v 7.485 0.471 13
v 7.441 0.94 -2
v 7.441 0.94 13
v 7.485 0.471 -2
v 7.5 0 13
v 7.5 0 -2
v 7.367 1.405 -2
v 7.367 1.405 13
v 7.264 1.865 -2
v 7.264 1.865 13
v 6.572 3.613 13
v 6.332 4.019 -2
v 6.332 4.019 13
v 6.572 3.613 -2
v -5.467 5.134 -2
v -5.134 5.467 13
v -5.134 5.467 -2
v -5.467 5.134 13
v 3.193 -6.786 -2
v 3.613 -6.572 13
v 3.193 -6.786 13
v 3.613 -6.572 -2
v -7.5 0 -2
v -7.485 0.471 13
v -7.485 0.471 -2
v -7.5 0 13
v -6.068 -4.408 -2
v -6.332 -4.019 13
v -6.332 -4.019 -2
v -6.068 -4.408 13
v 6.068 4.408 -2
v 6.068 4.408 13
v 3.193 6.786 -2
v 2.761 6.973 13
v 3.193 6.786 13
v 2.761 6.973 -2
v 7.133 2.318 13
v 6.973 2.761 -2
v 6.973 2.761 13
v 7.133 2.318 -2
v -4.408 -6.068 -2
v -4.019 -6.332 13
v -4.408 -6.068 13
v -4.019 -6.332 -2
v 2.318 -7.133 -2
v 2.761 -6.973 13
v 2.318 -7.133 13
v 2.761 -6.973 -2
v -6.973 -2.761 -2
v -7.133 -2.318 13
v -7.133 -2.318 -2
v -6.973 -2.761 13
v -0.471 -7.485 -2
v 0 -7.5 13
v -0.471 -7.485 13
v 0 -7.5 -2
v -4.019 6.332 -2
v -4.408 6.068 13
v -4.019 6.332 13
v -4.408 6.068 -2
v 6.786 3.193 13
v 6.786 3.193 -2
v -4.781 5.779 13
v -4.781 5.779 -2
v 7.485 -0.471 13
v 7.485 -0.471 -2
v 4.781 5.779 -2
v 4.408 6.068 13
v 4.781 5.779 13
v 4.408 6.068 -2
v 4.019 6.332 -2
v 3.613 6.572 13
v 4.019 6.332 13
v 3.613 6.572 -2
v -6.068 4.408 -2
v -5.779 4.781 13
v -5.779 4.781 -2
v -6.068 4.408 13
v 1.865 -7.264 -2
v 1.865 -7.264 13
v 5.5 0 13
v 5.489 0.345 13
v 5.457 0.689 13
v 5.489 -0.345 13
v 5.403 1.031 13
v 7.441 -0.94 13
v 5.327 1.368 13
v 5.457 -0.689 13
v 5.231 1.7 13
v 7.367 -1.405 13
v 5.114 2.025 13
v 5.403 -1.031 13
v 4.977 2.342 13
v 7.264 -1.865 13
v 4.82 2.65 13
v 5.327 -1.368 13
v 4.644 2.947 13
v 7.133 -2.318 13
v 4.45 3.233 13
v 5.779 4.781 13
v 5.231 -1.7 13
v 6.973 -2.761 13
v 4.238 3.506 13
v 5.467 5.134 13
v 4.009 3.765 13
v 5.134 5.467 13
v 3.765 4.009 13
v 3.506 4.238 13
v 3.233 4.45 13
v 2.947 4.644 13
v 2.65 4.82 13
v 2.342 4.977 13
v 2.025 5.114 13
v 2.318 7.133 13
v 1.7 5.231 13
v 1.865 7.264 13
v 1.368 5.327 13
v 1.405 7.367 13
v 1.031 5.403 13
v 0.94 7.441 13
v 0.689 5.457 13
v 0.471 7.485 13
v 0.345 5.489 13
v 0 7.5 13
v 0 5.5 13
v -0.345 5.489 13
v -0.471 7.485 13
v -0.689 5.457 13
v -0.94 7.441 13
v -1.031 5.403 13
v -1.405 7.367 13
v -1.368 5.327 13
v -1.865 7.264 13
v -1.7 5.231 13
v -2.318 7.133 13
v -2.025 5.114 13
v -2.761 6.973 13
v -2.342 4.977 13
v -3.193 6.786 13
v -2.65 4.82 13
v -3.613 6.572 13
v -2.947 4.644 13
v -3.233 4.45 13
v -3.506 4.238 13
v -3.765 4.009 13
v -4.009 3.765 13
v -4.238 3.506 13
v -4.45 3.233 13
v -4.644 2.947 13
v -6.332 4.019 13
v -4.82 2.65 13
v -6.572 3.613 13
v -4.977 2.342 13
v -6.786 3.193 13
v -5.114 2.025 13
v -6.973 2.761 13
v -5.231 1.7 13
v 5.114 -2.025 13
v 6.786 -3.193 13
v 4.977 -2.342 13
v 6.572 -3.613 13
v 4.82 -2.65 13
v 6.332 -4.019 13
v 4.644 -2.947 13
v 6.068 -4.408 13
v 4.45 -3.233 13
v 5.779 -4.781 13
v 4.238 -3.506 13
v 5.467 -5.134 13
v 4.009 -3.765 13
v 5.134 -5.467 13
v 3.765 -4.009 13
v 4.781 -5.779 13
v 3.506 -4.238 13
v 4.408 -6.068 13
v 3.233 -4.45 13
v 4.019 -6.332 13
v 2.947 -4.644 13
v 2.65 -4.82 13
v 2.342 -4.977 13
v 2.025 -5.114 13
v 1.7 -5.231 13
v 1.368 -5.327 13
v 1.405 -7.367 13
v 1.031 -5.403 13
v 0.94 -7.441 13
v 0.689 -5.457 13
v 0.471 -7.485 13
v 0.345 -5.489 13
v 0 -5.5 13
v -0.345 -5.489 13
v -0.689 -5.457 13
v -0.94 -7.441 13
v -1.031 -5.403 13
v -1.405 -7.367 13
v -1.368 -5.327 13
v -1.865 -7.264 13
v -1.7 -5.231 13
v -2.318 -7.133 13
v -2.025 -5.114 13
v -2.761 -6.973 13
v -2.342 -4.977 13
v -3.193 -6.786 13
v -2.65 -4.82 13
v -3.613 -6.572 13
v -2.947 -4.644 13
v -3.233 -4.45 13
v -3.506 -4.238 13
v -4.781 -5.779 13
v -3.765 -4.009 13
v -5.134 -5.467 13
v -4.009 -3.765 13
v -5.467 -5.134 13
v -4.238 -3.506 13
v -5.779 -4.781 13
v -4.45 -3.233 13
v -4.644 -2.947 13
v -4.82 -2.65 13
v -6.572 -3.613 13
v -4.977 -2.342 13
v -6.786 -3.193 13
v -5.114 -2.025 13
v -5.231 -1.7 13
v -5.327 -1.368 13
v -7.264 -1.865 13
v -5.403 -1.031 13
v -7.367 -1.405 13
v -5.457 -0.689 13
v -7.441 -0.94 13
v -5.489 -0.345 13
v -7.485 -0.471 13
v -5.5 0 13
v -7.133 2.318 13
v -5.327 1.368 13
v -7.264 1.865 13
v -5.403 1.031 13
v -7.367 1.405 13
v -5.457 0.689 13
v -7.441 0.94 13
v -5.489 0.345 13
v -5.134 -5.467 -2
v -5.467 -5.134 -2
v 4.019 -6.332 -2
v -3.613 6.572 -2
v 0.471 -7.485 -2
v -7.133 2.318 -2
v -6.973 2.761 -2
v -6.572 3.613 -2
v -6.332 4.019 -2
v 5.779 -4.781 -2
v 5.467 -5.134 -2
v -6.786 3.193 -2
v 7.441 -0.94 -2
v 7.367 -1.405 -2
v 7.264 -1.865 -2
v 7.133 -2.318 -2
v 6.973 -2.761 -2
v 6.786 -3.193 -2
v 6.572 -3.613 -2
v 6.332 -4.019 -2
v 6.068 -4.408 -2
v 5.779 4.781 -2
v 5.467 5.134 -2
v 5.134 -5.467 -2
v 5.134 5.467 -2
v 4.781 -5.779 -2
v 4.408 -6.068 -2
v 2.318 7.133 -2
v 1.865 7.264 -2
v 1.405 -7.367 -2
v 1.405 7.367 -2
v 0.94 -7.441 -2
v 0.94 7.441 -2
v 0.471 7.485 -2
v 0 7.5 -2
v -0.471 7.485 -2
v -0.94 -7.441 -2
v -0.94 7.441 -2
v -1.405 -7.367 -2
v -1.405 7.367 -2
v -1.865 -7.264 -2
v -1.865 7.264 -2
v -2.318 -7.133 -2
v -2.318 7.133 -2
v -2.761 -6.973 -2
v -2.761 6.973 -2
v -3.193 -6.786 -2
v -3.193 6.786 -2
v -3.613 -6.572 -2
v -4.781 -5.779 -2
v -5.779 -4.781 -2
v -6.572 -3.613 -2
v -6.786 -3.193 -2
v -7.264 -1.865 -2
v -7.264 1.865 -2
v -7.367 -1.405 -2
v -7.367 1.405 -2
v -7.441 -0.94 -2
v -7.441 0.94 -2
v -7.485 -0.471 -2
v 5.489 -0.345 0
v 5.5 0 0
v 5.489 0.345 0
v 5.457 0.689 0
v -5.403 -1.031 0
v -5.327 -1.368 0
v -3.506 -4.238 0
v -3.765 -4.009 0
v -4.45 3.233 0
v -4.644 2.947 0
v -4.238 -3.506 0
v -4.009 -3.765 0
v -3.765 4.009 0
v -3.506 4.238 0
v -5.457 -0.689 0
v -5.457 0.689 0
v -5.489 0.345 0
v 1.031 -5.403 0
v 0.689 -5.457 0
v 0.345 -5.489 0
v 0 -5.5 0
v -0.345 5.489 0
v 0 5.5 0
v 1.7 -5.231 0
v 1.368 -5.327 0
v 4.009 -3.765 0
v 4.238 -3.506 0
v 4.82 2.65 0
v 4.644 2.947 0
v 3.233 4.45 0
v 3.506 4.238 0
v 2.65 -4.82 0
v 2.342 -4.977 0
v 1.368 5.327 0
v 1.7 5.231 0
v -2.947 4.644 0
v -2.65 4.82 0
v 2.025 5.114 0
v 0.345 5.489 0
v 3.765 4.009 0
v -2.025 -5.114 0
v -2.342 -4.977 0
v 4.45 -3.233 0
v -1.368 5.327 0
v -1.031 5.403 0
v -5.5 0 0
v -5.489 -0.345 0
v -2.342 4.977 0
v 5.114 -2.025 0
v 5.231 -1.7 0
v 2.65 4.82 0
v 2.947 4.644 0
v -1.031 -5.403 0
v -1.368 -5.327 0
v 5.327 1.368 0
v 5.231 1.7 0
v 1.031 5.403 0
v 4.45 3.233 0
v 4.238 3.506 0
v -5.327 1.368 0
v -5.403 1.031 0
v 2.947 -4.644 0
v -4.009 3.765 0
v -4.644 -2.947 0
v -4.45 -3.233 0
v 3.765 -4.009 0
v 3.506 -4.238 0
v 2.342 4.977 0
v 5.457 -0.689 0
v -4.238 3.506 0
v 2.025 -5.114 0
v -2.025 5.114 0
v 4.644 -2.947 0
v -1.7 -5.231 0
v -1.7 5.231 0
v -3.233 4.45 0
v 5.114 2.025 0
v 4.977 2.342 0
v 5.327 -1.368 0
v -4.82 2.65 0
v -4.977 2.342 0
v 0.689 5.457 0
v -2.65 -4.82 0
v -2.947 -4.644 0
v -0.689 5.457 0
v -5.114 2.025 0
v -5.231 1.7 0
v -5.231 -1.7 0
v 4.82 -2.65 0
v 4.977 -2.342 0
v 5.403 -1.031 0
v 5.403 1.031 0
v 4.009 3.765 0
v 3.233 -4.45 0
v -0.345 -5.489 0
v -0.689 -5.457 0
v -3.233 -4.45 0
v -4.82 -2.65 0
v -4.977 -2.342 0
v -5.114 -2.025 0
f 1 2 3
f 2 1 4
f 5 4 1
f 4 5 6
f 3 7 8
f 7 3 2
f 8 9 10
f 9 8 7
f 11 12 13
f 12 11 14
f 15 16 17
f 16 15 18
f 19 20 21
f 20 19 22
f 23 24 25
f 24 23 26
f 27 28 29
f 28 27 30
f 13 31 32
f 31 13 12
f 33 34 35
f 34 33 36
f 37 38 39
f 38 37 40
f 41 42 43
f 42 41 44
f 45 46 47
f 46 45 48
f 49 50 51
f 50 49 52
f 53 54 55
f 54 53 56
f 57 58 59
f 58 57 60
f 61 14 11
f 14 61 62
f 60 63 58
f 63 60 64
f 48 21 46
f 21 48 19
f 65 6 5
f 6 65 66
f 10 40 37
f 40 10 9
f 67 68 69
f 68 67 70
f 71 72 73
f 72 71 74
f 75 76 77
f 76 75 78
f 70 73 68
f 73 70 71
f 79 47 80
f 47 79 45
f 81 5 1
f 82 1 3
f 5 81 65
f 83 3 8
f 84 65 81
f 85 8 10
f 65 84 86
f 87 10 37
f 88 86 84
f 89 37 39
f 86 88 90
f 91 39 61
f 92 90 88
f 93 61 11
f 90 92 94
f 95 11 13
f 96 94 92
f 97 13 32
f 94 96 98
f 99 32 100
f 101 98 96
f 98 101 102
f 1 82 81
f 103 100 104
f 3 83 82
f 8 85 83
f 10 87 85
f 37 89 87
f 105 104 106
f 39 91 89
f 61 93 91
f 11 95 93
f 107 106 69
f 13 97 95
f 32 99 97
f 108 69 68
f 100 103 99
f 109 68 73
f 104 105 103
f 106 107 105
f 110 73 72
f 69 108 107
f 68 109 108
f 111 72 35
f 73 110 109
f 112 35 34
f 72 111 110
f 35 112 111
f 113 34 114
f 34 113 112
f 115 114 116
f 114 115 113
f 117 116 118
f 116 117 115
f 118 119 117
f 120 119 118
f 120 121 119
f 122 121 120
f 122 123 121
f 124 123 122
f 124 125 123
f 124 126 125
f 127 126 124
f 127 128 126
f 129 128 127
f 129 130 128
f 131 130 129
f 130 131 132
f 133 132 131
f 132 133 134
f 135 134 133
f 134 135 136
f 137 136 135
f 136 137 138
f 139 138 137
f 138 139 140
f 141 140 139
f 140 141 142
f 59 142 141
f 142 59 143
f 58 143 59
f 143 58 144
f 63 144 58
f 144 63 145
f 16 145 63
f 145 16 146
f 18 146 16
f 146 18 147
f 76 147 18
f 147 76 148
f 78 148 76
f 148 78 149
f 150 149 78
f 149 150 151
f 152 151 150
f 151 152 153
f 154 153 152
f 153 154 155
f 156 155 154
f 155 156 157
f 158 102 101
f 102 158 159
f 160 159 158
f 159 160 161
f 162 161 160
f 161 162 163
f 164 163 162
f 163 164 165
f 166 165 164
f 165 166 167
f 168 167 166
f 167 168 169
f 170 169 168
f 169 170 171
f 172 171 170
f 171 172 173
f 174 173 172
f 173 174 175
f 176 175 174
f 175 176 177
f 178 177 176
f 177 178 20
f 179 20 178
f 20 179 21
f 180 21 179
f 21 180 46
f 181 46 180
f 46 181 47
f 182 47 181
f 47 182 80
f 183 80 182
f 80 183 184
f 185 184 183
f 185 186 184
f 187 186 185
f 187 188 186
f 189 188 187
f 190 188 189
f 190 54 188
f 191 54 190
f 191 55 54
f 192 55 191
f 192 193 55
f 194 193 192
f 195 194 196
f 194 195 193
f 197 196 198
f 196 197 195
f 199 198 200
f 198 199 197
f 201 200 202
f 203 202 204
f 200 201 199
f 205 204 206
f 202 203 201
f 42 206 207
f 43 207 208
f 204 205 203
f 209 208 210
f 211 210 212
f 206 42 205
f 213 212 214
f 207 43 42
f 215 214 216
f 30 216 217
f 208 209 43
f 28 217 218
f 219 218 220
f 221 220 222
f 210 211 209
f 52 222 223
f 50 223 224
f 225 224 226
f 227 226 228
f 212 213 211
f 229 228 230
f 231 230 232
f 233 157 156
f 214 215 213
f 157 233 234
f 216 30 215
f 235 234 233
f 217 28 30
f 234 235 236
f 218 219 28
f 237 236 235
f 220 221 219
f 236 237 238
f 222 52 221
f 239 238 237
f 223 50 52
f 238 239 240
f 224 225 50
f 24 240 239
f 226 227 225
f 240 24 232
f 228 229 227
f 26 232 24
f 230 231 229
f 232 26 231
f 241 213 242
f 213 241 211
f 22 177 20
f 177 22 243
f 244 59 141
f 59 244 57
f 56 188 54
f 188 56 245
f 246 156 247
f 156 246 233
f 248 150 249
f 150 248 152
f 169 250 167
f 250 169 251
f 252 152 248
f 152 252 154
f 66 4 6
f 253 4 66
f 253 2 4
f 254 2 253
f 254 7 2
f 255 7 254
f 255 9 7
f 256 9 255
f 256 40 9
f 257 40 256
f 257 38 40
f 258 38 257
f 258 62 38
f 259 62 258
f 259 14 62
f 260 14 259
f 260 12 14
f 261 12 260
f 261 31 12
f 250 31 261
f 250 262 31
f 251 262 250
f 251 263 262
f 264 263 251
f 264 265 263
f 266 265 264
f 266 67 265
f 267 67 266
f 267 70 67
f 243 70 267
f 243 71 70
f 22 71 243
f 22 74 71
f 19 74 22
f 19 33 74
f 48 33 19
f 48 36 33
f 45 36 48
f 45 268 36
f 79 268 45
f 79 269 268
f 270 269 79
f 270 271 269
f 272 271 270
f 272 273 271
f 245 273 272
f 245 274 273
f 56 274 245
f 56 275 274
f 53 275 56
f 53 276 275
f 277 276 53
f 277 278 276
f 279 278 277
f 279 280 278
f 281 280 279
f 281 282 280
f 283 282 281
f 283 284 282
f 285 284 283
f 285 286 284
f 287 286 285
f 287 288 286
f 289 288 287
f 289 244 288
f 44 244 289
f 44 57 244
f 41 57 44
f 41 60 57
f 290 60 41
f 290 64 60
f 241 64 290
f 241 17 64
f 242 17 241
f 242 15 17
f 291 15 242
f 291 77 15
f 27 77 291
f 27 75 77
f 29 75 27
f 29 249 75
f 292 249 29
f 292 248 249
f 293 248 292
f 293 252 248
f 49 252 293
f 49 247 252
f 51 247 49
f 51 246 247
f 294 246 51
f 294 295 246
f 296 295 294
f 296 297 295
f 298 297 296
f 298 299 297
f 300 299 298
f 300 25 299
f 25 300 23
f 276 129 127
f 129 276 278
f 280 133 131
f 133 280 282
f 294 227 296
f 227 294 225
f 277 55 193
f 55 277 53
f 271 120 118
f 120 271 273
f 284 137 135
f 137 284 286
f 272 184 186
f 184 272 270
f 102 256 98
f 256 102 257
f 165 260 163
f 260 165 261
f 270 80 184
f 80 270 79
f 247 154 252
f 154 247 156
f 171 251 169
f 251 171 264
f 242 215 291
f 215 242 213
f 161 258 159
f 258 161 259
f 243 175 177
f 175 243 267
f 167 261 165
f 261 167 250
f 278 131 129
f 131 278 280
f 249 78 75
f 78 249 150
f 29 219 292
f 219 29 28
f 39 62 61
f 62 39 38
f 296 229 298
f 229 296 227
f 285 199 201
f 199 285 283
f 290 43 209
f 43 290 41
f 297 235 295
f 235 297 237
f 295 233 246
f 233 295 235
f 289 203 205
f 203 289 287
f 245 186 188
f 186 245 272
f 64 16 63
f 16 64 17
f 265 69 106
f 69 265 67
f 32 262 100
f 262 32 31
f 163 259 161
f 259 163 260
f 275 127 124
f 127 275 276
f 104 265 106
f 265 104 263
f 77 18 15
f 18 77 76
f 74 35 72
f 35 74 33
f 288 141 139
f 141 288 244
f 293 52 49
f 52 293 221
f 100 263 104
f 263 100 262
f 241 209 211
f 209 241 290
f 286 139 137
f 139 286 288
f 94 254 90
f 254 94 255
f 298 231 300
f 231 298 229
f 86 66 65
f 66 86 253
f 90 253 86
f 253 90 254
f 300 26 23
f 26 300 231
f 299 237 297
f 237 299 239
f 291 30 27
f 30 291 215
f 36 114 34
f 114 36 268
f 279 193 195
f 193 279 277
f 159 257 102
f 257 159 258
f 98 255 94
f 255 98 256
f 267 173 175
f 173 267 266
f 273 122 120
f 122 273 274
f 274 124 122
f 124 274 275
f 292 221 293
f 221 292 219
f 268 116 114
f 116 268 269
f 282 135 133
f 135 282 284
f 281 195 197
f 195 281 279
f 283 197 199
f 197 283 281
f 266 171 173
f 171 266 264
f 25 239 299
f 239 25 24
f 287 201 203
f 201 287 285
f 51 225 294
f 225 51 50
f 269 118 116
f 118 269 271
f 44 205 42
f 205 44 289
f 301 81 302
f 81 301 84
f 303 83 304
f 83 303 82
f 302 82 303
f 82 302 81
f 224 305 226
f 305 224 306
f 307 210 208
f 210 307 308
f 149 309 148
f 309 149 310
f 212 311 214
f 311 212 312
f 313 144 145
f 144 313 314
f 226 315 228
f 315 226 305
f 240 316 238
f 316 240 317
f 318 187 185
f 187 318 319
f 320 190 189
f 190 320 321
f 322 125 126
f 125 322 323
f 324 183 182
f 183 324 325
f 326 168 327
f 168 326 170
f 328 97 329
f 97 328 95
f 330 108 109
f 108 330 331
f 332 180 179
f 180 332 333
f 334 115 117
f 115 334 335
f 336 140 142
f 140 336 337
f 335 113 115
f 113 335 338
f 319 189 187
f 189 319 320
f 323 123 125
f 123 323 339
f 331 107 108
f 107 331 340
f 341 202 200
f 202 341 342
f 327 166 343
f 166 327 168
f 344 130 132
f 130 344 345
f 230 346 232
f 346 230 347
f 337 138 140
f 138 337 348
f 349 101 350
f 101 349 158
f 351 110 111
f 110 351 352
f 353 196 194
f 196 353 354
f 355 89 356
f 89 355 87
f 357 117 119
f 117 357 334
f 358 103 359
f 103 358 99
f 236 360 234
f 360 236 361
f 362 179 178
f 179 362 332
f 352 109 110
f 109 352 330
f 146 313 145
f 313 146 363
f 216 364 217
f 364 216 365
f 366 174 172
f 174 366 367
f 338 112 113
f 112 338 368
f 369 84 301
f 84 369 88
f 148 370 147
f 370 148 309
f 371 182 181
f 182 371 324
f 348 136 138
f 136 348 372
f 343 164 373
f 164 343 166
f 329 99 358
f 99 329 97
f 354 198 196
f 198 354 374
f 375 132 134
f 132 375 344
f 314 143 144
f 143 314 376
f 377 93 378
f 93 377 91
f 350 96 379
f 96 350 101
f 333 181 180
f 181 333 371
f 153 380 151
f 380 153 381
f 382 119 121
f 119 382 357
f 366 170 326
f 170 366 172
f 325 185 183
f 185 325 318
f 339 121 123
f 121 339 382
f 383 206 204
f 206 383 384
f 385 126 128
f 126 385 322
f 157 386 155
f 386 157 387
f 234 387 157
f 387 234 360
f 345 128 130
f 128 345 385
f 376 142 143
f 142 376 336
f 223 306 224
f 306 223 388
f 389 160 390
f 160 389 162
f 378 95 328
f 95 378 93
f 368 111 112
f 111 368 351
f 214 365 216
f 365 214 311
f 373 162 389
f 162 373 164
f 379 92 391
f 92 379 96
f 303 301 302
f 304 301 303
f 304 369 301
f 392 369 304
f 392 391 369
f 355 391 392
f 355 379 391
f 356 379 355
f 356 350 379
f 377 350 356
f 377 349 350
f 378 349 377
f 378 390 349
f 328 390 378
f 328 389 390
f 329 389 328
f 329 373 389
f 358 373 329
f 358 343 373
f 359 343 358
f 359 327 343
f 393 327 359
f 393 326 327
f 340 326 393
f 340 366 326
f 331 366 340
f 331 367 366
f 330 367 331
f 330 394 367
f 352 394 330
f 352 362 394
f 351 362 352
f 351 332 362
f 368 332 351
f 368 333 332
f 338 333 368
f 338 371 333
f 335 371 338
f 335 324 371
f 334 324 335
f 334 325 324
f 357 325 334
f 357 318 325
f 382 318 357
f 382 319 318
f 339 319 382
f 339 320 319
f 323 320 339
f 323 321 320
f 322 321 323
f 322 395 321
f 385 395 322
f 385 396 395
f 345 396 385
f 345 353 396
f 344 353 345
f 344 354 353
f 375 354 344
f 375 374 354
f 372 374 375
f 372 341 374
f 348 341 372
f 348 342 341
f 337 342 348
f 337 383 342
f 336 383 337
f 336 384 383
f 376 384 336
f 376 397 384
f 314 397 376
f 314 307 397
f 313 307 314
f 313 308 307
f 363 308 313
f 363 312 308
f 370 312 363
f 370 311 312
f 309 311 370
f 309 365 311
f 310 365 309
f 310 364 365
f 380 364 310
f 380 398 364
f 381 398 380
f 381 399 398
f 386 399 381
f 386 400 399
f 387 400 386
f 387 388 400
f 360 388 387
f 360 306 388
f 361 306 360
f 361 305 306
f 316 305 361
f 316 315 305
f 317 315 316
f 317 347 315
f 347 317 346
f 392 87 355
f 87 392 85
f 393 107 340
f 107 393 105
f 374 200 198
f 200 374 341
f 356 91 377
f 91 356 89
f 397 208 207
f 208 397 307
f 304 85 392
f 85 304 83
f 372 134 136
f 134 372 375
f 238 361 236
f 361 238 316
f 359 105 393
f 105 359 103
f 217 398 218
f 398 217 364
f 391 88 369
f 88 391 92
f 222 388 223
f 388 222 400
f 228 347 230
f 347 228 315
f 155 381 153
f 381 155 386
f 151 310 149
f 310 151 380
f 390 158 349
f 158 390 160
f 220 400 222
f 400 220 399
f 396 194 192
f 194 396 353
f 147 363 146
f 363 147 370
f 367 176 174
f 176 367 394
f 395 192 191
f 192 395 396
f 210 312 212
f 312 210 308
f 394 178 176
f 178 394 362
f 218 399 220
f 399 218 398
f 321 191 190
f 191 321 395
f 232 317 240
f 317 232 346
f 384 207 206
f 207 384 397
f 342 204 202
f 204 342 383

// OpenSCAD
//
// ktRACK53
//
//

gap1 = 0.001;
gap2 = 0.002;

th = 2;


difference()
{
    union()
    {
        translate([0, 0, -th]) rotate([0, 0, 0]) cylinder(h=13+th, r=(11+th*2)/2, $fn=100);
    }
    translate([0, 0, 0]) rotate([0, 0, 0]) cylinder(h=13, r=11/2, $fn=100);

}
